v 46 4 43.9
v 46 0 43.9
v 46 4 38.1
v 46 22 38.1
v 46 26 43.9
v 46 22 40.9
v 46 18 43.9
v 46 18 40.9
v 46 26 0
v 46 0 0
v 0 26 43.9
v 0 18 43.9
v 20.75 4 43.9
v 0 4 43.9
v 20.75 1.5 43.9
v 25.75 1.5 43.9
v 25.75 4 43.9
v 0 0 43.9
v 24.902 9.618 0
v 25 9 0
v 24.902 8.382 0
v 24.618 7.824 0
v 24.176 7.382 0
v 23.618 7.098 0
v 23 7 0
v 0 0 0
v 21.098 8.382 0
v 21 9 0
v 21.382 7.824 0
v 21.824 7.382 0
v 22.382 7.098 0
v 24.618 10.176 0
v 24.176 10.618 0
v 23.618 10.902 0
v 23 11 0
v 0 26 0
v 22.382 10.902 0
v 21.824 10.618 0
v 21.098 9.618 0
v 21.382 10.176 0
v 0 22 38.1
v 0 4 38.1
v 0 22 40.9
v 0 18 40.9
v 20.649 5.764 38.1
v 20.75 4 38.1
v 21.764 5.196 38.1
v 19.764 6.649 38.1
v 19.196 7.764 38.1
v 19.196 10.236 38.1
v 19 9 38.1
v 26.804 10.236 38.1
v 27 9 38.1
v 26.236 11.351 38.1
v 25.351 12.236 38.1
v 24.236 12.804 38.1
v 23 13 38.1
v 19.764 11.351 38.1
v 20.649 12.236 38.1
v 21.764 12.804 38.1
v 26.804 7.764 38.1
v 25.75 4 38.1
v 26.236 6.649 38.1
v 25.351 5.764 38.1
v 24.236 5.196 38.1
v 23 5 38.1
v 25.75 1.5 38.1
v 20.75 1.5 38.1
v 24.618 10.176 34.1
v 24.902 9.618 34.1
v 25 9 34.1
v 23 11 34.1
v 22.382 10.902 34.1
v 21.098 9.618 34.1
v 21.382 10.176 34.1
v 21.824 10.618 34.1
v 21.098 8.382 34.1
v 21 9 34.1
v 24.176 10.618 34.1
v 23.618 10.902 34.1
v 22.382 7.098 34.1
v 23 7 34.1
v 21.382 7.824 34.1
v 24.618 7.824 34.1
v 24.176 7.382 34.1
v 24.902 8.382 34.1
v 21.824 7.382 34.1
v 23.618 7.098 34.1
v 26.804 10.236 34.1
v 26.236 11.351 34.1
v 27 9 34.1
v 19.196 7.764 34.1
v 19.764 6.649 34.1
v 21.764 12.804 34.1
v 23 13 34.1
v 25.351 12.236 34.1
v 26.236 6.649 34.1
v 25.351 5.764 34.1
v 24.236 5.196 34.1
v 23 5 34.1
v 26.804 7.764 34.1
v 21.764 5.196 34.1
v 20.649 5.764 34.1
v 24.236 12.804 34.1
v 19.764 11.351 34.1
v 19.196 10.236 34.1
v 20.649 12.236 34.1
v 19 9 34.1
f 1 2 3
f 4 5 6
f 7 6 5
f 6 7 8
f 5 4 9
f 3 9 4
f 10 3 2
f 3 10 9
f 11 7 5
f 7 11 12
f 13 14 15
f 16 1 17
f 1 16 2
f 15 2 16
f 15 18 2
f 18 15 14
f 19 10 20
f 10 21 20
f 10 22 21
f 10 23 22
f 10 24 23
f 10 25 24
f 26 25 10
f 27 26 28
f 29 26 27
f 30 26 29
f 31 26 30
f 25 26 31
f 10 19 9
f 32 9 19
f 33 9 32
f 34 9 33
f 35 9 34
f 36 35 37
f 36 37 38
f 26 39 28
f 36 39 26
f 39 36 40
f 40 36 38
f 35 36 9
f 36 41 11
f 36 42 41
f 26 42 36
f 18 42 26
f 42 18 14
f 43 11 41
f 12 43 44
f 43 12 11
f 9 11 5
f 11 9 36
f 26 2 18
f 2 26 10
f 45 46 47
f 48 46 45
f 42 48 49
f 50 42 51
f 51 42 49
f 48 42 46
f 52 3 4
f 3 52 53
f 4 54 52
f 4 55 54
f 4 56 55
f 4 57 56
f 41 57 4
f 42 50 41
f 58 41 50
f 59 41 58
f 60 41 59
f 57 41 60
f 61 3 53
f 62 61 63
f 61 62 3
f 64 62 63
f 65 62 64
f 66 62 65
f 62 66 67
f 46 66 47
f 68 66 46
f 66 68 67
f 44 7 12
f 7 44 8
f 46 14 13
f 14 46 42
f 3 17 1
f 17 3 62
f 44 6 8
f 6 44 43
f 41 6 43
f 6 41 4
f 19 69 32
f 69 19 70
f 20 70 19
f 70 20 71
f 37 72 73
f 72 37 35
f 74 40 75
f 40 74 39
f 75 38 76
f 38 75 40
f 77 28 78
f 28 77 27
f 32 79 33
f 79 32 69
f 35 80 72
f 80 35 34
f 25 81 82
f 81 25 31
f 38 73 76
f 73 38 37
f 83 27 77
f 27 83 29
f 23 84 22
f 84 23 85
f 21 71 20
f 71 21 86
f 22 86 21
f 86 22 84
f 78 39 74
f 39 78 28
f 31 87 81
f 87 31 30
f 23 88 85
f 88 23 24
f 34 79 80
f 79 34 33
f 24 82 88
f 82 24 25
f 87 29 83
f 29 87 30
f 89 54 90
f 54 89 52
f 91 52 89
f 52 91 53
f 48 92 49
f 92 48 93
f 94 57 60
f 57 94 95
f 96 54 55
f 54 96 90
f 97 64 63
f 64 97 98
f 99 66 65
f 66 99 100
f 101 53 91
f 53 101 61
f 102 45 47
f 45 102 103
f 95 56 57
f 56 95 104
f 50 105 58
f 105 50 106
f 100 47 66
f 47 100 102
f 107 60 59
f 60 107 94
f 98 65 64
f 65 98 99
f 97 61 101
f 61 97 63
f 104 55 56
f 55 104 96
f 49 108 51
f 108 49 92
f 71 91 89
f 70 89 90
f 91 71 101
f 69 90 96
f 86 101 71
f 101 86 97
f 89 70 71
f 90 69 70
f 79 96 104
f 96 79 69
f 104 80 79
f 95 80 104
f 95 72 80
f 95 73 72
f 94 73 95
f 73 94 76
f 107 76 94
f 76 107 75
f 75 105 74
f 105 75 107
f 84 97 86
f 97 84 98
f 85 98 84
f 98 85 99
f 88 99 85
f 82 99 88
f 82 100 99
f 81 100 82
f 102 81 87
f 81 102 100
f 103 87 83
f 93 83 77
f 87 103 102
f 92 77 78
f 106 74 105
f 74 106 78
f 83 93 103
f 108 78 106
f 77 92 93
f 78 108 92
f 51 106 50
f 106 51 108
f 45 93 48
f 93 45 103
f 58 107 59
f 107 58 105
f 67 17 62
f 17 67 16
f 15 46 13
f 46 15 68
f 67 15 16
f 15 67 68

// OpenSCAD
module bottom_brace(height) {
  width=46;
  bar_height=2.8;
  depth=18;
  front_hang=4;
  back_hang=4;
  overlap=2;
  top_hang=3;
  wire_gap=2.5;
  screw_d1=4;
  screw_d2=8;
  screw_head=4;
  
  difference() {
    union() {
      cube([width,depth+front_hang+back_hang,height+bar_height+top_hang]);
      translate([0,depth,0])
        cube([width,front_hang+back_hang,height+bar_height+top_hang]);
    }
    translate([0,front_hang,height])
      cube([width,depth-back_hang,bar_height+top_hang]);
    #translate([0,front_hang,height]) cube([width,depth,bar_height]);
    
    // screw
    translate([width/2,depth/2,0]) cylinder(height, d=screw_d1);
    translate([width/2,depth/2,height-screw_head]) cylinder(height, d=screw_d2);
    
    // bar slots
    translate([22-wire_gap/2,front_hang-wire_gap,height]) cube([wire_gap*2,wire_gap,10]);
  }
}

module two_unit_clip_v1() {
  height=3;
  width=20;
  bar_height=2.7*2;
  depth=18;
  front_hang=2;
  back_hang=4;
  overlap=2;
  top_hang=3;
  
  difference() {
    union() {
      cube([width,depth+front_hang+back_hang,height+bar_height+top_hang]);
      translate([0,depth,0])
        cube([width,front_hang+back_hang,height+bar_height+top_hang]);
    }
    translate([0,front_hang,height])
      cube([width,depth-back_hang,bar_height+top_hang]);
    translate([0,front_hang,height]) cube([width,depth,bar_height]);
  }
}

module two_unit_clip() {
  width=20;
  bar_height=2.7*2;
  depth=18;

  difference() {
    cube([width, depth+6,3+bar_height+2]);
    translate([0,3,3]) cube([width,depth,bar_height]);
    #translate([0,4,3]) cube([width,depth-4,bar_height*2]);
  }
}

$fn=20;
INCH=25.4;
bottom_brace(1.5*INCH);
//two_unit_clip();
